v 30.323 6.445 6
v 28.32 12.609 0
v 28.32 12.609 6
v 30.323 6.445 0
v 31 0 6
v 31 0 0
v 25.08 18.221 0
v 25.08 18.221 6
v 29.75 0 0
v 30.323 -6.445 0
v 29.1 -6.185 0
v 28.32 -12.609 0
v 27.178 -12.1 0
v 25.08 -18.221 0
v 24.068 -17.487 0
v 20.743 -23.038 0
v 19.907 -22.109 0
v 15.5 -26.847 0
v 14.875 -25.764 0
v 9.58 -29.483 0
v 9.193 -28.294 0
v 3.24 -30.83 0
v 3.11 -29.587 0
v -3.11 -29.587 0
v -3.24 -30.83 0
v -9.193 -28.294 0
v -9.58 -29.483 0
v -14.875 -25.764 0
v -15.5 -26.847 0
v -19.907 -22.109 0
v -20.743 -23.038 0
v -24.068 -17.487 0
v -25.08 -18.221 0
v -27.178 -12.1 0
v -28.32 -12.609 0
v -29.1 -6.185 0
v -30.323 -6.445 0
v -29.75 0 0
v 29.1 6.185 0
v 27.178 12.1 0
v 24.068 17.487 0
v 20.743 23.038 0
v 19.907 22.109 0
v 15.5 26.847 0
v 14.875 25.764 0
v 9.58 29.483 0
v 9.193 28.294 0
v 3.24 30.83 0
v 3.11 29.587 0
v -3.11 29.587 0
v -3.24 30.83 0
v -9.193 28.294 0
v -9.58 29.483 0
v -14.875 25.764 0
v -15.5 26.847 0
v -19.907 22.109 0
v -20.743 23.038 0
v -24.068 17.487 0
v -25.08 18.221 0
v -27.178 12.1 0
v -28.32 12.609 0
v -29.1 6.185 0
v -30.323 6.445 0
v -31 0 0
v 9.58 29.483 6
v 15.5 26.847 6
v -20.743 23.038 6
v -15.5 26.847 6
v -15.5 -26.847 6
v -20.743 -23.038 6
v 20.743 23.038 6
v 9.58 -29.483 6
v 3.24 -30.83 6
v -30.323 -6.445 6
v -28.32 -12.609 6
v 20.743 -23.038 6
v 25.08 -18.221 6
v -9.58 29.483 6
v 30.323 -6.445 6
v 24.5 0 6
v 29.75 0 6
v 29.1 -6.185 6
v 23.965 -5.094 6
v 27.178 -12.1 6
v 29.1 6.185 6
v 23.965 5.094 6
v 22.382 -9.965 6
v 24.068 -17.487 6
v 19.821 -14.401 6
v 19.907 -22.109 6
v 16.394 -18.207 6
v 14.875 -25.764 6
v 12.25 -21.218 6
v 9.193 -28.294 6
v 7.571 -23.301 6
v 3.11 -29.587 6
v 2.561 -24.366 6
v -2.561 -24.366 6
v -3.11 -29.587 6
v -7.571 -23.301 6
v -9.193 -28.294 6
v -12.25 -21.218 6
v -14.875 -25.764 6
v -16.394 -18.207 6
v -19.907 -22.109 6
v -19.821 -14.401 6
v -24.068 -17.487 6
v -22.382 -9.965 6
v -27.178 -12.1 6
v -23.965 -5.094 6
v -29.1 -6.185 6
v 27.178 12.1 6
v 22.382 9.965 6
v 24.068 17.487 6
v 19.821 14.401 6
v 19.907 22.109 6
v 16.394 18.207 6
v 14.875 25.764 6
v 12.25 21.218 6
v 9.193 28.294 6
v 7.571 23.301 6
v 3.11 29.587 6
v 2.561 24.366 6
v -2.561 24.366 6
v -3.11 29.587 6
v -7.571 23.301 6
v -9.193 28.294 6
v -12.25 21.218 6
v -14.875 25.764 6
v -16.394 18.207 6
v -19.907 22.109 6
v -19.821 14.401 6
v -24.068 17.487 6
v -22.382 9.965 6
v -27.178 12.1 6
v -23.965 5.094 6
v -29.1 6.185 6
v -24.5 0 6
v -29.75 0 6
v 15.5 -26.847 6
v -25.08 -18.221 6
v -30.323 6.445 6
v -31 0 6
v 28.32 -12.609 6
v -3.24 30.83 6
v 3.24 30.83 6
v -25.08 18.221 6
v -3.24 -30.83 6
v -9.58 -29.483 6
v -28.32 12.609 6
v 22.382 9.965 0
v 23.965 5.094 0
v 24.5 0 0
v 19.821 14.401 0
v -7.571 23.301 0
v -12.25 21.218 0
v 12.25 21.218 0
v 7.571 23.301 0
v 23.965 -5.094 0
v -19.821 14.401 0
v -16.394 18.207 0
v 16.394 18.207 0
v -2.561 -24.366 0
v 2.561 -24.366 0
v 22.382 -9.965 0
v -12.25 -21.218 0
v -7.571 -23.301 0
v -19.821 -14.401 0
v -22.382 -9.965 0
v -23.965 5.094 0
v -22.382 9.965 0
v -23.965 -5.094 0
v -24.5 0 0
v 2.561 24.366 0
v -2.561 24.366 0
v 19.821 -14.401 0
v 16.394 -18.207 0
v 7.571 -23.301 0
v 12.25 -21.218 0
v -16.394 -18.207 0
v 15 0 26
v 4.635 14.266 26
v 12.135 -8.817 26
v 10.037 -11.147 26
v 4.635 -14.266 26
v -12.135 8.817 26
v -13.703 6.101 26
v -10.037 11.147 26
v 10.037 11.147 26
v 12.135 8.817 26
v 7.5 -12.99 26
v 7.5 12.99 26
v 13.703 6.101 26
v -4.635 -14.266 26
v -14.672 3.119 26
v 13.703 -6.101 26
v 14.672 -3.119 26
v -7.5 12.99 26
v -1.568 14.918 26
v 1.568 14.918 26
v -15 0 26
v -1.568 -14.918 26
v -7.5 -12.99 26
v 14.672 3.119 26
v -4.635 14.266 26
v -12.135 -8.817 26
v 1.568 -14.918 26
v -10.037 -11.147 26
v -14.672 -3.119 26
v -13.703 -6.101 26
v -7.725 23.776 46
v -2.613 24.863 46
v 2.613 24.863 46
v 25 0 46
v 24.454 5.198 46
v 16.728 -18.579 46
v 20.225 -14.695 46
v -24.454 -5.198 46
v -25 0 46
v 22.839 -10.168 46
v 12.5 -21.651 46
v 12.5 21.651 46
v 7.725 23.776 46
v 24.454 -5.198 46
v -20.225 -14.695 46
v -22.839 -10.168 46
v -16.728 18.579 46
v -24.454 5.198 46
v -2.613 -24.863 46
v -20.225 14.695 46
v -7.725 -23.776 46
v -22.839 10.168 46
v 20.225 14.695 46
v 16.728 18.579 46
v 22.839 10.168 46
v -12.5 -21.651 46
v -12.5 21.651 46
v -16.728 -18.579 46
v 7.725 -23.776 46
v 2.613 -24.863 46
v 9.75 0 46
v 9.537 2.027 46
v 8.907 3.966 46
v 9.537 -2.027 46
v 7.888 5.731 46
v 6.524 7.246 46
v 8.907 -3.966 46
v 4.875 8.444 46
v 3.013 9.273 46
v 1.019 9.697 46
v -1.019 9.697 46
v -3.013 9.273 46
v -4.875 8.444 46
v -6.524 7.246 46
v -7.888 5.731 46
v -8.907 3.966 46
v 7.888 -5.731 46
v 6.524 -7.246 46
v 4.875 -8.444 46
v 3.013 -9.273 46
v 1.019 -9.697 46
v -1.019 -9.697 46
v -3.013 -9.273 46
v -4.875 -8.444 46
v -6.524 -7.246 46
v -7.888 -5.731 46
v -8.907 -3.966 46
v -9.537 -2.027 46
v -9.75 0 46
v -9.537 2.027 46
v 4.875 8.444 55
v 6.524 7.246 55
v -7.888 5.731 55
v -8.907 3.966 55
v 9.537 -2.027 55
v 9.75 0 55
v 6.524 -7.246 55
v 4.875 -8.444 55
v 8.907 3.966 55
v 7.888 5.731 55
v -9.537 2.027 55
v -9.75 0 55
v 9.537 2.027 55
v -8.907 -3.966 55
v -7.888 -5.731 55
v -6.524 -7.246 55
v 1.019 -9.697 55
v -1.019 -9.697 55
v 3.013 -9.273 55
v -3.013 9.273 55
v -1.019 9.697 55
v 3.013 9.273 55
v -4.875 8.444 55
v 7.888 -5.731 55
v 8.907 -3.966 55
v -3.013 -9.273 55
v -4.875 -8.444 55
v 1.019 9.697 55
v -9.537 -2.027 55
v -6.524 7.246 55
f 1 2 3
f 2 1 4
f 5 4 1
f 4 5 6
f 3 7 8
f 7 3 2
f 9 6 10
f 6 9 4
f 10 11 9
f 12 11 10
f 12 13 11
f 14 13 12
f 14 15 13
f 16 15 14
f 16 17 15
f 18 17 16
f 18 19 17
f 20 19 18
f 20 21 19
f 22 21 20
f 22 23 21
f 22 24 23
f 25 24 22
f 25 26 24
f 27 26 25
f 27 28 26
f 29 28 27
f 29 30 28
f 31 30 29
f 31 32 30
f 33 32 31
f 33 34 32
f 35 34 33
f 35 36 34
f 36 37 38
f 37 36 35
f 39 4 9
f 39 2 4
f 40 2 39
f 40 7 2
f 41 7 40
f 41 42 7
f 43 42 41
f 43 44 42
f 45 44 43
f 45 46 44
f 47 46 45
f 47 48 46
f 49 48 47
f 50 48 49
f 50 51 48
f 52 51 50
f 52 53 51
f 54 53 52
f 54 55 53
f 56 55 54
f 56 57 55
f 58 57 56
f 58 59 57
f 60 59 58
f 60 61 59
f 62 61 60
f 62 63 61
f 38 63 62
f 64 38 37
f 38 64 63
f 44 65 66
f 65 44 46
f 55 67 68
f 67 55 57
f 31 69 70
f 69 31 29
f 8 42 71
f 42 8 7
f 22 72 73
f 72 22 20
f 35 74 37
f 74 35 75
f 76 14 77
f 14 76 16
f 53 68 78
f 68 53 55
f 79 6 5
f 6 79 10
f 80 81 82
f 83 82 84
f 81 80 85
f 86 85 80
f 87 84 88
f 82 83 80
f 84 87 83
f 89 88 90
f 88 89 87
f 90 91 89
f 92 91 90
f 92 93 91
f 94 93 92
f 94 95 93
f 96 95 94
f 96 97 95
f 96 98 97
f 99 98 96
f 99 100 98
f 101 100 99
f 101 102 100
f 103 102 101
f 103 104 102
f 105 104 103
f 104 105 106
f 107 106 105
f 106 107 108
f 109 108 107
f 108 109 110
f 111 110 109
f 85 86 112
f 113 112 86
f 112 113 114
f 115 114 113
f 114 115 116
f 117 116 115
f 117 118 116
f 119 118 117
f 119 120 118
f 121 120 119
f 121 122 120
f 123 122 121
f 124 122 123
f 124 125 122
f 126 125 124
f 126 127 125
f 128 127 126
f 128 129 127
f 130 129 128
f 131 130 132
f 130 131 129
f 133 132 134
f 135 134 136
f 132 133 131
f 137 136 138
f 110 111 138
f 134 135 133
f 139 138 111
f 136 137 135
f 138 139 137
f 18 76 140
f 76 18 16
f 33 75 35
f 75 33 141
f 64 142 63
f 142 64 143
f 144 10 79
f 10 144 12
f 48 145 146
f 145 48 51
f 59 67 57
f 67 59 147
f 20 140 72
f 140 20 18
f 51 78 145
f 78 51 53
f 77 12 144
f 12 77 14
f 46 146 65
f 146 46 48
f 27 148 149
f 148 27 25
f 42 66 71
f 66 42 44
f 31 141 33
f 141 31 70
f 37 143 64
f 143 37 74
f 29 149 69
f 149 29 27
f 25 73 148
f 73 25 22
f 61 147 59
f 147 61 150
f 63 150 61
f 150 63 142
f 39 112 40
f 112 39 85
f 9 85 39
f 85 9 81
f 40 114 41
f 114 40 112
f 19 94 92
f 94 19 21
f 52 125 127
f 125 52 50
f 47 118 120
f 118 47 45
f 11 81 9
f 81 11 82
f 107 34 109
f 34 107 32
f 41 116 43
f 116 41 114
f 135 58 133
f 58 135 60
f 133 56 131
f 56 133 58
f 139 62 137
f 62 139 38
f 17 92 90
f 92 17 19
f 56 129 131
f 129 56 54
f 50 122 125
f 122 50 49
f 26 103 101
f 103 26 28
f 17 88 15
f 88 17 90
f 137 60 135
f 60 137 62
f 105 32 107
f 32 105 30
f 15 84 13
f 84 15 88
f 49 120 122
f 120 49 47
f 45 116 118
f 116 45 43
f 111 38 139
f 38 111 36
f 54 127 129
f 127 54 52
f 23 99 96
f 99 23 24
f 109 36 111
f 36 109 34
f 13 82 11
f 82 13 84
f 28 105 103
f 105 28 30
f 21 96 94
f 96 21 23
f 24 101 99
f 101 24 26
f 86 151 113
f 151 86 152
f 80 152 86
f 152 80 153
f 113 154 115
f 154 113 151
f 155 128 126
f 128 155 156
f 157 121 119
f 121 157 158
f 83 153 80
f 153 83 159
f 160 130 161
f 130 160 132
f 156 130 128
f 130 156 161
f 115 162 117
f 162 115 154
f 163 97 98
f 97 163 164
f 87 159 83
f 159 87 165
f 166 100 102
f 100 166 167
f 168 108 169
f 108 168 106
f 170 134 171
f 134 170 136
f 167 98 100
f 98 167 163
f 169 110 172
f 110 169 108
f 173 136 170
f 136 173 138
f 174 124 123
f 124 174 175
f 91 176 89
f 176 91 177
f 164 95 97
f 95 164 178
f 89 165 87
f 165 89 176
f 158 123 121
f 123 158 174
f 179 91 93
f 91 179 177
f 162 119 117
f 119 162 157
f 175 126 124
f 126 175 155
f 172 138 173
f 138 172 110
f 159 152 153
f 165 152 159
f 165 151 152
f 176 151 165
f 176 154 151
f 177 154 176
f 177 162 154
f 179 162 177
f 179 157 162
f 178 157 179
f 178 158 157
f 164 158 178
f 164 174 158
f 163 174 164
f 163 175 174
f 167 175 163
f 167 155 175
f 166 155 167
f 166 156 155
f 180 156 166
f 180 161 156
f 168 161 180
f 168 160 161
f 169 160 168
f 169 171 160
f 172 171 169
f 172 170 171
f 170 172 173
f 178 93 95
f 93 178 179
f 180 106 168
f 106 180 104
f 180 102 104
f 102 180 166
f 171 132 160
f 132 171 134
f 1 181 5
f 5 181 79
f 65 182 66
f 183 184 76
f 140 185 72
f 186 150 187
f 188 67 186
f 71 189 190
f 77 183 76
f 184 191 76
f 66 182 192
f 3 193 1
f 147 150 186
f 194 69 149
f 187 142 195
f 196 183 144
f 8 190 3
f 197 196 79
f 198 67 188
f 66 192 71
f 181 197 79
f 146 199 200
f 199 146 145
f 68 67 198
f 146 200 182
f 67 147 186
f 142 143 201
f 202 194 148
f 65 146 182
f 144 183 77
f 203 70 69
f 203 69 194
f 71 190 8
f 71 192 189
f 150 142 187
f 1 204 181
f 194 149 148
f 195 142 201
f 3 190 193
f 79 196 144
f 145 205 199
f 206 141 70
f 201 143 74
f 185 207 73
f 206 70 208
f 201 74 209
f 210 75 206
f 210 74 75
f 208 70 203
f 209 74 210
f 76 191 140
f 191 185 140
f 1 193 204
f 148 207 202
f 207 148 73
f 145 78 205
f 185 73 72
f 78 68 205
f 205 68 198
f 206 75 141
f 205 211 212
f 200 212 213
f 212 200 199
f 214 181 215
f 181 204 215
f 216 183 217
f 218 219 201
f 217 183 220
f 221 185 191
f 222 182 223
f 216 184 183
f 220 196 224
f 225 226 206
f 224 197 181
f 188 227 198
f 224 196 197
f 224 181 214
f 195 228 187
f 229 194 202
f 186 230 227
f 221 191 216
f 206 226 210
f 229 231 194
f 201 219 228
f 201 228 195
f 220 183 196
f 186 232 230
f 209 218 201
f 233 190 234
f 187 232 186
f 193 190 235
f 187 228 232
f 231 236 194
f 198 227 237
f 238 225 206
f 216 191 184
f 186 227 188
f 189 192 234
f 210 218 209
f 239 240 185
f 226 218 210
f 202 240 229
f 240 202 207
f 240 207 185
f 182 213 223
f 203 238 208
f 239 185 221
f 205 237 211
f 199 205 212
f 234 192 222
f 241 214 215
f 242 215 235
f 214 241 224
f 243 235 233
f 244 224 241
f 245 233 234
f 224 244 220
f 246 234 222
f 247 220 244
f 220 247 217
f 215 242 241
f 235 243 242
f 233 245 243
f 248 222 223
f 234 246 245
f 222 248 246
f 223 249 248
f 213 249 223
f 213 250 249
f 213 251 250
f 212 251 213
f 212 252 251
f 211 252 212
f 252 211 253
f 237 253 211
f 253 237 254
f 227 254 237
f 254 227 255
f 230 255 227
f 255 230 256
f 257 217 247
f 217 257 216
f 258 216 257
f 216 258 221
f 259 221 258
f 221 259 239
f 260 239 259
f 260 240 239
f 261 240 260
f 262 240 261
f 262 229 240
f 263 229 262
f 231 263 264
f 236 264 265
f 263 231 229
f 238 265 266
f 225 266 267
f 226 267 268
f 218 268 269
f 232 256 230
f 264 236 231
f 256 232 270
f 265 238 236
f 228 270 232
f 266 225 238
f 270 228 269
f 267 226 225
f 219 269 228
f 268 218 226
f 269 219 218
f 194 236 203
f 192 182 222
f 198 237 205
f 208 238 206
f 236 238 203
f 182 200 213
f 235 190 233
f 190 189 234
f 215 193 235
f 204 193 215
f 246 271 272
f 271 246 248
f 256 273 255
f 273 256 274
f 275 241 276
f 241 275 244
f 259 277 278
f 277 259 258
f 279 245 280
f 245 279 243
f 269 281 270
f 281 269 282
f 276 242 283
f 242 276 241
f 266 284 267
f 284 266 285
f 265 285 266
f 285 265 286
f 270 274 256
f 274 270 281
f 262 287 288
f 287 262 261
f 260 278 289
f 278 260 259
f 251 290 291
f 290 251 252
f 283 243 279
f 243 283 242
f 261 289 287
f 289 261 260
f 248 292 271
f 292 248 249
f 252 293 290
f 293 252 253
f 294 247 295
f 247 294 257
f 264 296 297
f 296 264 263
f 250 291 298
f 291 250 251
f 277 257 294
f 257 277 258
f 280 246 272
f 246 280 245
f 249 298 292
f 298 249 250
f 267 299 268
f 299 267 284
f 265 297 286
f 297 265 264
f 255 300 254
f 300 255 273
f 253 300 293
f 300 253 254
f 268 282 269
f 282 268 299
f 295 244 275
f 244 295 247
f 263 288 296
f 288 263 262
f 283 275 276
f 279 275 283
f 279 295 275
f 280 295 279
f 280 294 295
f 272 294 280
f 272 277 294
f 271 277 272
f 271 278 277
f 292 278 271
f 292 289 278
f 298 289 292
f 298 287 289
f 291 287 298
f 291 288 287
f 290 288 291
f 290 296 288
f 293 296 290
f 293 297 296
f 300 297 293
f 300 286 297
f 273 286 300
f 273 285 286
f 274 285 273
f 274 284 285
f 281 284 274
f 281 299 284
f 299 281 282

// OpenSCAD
scale([.5, .5, 1]) {

difference() {
    translate([0, 0, 0]) {
        cylinder(6, 62, 62);
    } 
    translate([0, 0, -1]) { 
        cylinder(25, 59.5, 59.5);
    }
}
    translate([0, 0, 0]) { 
       cylinder(12, 49, 49);
    }
    translate([0, 0, 6]) { 
       cylinder(20, 62, 30);
    }
    
    translate([0, 0, 26]) { 
       cylinder(20, 30, 50);
    }
        translate([0, 0, 45]) { 
       cylinder(10, 19.5, 19.5);
    }
    
    /* In part 3
    translate([0, 0, 46]) { 
       cylinder(20, 50, 30);
    }
    translate([0, 0, 66]) { 
       cylinder(10, 20, 20);
    }
    */
    /* In part 2
    translate([140, 0, 28]) {
    rotate([180, 0, 0]) {
        difference() {
            translate([0, 0, 0]) { 
               cylinder(20, 30, 70);
            }
            translate([0, 0, -1]) { 
               cylinder(60, 19.5, 19.5);
            }
        }
        difference() {
            translate([0, 0, 16]) { 
               cylinder(12, 58.5, 58.5);
            }
            translate([0, 0, 16]) { 
               cylinder(15, 50, 50);
            }

        }
    }
    }
    */
}
